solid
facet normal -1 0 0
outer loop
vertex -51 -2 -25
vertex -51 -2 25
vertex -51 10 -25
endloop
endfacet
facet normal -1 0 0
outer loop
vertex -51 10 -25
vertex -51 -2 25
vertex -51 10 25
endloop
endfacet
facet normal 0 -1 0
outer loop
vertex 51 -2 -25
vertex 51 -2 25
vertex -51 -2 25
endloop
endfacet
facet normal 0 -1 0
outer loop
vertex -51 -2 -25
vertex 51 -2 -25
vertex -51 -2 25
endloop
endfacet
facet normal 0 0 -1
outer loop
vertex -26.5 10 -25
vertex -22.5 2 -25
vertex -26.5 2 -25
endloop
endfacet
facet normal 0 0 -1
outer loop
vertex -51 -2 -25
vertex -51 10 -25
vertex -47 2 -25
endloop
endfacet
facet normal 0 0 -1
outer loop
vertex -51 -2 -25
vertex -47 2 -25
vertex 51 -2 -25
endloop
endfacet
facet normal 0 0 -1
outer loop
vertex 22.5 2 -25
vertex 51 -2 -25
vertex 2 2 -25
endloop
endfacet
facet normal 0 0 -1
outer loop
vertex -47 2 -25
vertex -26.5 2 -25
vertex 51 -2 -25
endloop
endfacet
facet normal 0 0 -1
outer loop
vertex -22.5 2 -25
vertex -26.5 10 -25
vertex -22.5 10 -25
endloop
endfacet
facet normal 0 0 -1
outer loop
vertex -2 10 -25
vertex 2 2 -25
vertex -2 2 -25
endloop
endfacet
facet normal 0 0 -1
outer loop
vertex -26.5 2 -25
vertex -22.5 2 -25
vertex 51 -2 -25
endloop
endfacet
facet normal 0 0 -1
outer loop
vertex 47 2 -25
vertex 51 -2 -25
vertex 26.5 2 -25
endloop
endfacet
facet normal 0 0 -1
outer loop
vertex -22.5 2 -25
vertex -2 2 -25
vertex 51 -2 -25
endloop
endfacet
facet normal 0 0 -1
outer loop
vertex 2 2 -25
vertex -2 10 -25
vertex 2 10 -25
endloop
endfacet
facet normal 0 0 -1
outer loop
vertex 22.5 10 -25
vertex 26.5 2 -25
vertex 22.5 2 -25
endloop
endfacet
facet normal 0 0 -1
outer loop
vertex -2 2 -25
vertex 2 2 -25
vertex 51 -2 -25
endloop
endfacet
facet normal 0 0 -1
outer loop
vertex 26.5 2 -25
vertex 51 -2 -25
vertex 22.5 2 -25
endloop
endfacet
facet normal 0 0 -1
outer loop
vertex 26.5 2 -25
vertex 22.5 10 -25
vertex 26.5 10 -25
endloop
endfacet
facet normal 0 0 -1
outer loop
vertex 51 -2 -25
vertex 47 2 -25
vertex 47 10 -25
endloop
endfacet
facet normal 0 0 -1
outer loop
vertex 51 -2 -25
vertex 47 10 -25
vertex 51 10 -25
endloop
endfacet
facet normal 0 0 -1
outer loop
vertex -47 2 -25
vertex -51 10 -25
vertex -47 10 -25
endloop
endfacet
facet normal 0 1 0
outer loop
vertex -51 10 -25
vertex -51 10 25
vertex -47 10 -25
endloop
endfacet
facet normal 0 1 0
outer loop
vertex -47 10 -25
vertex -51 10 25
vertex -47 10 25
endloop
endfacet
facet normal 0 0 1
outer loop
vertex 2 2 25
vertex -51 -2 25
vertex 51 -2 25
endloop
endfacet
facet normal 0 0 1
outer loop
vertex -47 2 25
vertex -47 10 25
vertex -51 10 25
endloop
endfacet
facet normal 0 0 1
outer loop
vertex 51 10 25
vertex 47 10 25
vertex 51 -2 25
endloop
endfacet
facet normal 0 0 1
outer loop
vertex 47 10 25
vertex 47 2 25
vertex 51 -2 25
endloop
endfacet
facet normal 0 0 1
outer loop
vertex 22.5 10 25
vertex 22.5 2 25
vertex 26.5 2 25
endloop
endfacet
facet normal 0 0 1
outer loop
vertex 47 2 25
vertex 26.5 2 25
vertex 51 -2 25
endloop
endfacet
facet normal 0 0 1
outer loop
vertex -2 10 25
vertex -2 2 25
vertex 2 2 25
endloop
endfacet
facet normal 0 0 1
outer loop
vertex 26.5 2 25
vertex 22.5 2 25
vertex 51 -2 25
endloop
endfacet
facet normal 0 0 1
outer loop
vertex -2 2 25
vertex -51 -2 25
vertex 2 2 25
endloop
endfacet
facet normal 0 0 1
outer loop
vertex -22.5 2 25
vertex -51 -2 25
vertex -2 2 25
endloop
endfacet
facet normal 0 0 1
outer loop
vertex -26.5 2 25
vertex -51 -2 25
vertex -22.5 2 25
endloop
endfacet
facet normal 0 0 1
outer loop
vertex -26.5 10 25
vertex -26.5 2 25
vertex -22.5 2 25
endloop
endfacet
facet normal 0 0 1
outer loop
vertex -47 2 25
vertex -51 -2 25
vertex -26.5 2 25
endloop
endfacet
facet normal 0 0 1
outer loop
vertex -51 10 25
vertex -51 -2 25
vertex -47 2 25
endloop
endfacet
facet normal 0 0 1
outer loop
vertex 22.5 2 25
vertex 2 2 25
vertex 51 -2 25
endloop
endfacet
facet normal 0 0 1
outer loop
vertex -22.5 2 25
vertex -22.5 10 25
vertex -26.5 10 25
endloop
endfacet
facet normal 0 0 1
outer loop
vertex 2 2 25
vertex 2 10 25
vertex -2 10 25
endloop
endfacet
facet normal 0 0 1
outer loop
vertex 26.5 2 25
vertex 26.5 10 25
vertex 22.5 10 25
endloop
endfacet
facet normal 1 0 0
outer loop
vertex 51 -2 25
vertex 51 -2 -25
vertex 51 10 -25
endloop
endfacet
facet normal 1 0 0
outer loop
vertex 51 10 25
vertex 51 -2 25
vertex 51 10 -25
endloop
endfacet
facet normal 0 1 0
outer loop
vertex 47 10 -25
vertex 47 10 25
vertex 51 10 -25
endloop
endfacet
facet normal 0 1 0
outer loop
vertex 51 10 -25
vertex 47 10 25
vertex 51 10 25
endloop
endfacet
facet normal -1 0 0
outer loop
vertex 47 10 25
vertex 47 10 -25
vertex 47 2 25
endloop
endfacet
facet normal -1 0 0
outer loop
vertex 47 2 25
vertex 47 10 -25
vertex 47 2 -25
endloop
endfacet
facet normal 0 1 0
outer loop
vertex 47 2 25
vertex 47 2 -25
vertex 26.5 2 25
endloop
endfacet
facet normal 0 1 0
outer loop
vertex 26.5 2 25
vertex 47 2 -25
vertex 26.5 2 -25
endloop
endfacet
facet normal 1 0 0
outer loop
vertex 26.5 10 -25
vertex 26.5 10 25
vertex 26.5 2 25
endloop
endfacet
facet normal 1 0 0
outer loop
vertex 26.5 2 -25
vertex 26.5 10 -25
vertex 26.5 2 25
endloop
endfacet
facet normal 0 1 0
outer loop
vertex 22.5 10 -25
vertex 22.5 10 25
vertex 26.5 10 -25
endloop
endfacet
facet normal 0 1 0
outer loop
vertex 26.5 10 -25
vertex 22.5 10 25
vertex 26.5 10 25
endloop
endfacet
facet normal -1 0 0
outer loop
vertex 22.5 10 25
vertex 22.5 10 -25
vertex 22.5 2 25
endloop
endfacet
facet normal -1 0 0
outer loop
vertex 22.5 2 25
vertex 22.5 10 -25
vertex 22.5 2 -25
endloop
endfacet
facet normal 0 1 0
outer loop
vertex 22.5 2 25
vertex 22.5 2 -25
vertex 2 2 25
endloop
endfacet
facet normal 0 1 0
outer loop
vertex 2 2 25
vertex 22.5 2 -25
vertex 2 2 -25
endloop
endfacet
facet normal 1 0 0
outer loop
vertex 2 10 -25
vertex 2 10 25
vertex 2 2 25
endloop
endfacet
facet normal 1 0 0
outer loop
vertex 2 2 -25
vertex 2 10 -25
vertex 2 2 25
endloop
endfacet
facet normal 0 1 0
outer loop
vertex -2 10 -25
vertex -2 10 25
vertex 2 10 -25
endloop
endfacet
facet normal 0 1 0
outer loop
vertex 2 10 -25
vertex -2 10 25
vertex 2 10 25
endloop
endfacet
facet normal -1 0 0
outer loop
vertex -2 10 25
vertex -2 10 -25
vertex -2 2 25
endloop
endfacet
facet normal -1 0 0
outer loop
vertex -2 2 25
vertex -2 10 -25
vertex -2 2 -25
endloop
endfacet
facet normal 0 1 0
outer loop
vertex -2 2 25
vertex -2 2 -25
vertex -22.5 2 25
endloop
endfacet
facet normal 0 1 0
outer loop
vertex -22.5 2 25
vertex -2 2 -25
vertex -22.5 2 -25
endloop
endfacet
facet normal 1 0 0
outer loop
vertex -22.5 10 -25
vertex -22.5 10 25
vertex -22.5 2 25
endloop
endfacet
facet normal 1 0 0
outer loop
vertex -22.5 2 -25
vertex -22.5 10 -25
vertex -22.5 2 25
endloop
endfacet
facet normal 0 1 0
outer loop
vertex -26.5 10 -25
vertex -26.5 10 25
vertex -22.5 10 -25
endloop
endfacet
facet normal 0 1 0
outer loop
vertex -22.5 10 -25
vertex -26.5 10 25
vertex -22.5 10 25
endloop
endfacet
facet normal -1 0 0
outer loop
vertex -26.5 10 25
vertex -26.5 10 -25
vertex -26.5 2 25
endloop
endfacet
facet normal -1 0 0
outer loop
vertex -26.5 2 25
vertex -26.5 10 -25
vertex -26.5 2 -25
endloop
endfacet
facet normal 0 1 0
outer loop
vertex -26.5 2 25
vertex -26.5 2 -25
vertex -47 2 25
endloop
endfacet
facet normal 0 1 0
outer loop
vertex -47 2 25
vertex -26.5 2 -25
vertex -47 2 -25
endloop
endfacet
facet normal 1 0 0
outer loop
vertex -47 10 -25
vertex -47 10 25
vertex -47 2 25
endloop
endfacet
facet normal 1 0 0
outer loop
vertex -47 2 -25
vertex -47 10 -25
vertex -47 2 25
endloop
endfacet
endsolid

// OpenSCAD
n = 4;
xthickness = 4;
ythickness = 4;
wcell = 20.5;

dcell = (20 - ythickness) / 2;
h = 50;

w = (n * wcell) + ((n + 1) * xthickness);
d = (2 * dcell) + ythickness;

translate([-w/2, -d/2, -h/2]) {
	difference() {

		cube([w, d, h]);

		union() {

			cube([w, (d - ythickness - dcell), h]);

			for (iy = [0, 1]) {
				for (ix = [0 : (n - 1)]) {
					translate([
							(ix * wcell)+ ((ix + 1) * xthickness),
							iy * (dcell + ythickness),
							0])
					{
						cube([wcell, dcell, h]);
					}
				}
			}
		};
	}
}
